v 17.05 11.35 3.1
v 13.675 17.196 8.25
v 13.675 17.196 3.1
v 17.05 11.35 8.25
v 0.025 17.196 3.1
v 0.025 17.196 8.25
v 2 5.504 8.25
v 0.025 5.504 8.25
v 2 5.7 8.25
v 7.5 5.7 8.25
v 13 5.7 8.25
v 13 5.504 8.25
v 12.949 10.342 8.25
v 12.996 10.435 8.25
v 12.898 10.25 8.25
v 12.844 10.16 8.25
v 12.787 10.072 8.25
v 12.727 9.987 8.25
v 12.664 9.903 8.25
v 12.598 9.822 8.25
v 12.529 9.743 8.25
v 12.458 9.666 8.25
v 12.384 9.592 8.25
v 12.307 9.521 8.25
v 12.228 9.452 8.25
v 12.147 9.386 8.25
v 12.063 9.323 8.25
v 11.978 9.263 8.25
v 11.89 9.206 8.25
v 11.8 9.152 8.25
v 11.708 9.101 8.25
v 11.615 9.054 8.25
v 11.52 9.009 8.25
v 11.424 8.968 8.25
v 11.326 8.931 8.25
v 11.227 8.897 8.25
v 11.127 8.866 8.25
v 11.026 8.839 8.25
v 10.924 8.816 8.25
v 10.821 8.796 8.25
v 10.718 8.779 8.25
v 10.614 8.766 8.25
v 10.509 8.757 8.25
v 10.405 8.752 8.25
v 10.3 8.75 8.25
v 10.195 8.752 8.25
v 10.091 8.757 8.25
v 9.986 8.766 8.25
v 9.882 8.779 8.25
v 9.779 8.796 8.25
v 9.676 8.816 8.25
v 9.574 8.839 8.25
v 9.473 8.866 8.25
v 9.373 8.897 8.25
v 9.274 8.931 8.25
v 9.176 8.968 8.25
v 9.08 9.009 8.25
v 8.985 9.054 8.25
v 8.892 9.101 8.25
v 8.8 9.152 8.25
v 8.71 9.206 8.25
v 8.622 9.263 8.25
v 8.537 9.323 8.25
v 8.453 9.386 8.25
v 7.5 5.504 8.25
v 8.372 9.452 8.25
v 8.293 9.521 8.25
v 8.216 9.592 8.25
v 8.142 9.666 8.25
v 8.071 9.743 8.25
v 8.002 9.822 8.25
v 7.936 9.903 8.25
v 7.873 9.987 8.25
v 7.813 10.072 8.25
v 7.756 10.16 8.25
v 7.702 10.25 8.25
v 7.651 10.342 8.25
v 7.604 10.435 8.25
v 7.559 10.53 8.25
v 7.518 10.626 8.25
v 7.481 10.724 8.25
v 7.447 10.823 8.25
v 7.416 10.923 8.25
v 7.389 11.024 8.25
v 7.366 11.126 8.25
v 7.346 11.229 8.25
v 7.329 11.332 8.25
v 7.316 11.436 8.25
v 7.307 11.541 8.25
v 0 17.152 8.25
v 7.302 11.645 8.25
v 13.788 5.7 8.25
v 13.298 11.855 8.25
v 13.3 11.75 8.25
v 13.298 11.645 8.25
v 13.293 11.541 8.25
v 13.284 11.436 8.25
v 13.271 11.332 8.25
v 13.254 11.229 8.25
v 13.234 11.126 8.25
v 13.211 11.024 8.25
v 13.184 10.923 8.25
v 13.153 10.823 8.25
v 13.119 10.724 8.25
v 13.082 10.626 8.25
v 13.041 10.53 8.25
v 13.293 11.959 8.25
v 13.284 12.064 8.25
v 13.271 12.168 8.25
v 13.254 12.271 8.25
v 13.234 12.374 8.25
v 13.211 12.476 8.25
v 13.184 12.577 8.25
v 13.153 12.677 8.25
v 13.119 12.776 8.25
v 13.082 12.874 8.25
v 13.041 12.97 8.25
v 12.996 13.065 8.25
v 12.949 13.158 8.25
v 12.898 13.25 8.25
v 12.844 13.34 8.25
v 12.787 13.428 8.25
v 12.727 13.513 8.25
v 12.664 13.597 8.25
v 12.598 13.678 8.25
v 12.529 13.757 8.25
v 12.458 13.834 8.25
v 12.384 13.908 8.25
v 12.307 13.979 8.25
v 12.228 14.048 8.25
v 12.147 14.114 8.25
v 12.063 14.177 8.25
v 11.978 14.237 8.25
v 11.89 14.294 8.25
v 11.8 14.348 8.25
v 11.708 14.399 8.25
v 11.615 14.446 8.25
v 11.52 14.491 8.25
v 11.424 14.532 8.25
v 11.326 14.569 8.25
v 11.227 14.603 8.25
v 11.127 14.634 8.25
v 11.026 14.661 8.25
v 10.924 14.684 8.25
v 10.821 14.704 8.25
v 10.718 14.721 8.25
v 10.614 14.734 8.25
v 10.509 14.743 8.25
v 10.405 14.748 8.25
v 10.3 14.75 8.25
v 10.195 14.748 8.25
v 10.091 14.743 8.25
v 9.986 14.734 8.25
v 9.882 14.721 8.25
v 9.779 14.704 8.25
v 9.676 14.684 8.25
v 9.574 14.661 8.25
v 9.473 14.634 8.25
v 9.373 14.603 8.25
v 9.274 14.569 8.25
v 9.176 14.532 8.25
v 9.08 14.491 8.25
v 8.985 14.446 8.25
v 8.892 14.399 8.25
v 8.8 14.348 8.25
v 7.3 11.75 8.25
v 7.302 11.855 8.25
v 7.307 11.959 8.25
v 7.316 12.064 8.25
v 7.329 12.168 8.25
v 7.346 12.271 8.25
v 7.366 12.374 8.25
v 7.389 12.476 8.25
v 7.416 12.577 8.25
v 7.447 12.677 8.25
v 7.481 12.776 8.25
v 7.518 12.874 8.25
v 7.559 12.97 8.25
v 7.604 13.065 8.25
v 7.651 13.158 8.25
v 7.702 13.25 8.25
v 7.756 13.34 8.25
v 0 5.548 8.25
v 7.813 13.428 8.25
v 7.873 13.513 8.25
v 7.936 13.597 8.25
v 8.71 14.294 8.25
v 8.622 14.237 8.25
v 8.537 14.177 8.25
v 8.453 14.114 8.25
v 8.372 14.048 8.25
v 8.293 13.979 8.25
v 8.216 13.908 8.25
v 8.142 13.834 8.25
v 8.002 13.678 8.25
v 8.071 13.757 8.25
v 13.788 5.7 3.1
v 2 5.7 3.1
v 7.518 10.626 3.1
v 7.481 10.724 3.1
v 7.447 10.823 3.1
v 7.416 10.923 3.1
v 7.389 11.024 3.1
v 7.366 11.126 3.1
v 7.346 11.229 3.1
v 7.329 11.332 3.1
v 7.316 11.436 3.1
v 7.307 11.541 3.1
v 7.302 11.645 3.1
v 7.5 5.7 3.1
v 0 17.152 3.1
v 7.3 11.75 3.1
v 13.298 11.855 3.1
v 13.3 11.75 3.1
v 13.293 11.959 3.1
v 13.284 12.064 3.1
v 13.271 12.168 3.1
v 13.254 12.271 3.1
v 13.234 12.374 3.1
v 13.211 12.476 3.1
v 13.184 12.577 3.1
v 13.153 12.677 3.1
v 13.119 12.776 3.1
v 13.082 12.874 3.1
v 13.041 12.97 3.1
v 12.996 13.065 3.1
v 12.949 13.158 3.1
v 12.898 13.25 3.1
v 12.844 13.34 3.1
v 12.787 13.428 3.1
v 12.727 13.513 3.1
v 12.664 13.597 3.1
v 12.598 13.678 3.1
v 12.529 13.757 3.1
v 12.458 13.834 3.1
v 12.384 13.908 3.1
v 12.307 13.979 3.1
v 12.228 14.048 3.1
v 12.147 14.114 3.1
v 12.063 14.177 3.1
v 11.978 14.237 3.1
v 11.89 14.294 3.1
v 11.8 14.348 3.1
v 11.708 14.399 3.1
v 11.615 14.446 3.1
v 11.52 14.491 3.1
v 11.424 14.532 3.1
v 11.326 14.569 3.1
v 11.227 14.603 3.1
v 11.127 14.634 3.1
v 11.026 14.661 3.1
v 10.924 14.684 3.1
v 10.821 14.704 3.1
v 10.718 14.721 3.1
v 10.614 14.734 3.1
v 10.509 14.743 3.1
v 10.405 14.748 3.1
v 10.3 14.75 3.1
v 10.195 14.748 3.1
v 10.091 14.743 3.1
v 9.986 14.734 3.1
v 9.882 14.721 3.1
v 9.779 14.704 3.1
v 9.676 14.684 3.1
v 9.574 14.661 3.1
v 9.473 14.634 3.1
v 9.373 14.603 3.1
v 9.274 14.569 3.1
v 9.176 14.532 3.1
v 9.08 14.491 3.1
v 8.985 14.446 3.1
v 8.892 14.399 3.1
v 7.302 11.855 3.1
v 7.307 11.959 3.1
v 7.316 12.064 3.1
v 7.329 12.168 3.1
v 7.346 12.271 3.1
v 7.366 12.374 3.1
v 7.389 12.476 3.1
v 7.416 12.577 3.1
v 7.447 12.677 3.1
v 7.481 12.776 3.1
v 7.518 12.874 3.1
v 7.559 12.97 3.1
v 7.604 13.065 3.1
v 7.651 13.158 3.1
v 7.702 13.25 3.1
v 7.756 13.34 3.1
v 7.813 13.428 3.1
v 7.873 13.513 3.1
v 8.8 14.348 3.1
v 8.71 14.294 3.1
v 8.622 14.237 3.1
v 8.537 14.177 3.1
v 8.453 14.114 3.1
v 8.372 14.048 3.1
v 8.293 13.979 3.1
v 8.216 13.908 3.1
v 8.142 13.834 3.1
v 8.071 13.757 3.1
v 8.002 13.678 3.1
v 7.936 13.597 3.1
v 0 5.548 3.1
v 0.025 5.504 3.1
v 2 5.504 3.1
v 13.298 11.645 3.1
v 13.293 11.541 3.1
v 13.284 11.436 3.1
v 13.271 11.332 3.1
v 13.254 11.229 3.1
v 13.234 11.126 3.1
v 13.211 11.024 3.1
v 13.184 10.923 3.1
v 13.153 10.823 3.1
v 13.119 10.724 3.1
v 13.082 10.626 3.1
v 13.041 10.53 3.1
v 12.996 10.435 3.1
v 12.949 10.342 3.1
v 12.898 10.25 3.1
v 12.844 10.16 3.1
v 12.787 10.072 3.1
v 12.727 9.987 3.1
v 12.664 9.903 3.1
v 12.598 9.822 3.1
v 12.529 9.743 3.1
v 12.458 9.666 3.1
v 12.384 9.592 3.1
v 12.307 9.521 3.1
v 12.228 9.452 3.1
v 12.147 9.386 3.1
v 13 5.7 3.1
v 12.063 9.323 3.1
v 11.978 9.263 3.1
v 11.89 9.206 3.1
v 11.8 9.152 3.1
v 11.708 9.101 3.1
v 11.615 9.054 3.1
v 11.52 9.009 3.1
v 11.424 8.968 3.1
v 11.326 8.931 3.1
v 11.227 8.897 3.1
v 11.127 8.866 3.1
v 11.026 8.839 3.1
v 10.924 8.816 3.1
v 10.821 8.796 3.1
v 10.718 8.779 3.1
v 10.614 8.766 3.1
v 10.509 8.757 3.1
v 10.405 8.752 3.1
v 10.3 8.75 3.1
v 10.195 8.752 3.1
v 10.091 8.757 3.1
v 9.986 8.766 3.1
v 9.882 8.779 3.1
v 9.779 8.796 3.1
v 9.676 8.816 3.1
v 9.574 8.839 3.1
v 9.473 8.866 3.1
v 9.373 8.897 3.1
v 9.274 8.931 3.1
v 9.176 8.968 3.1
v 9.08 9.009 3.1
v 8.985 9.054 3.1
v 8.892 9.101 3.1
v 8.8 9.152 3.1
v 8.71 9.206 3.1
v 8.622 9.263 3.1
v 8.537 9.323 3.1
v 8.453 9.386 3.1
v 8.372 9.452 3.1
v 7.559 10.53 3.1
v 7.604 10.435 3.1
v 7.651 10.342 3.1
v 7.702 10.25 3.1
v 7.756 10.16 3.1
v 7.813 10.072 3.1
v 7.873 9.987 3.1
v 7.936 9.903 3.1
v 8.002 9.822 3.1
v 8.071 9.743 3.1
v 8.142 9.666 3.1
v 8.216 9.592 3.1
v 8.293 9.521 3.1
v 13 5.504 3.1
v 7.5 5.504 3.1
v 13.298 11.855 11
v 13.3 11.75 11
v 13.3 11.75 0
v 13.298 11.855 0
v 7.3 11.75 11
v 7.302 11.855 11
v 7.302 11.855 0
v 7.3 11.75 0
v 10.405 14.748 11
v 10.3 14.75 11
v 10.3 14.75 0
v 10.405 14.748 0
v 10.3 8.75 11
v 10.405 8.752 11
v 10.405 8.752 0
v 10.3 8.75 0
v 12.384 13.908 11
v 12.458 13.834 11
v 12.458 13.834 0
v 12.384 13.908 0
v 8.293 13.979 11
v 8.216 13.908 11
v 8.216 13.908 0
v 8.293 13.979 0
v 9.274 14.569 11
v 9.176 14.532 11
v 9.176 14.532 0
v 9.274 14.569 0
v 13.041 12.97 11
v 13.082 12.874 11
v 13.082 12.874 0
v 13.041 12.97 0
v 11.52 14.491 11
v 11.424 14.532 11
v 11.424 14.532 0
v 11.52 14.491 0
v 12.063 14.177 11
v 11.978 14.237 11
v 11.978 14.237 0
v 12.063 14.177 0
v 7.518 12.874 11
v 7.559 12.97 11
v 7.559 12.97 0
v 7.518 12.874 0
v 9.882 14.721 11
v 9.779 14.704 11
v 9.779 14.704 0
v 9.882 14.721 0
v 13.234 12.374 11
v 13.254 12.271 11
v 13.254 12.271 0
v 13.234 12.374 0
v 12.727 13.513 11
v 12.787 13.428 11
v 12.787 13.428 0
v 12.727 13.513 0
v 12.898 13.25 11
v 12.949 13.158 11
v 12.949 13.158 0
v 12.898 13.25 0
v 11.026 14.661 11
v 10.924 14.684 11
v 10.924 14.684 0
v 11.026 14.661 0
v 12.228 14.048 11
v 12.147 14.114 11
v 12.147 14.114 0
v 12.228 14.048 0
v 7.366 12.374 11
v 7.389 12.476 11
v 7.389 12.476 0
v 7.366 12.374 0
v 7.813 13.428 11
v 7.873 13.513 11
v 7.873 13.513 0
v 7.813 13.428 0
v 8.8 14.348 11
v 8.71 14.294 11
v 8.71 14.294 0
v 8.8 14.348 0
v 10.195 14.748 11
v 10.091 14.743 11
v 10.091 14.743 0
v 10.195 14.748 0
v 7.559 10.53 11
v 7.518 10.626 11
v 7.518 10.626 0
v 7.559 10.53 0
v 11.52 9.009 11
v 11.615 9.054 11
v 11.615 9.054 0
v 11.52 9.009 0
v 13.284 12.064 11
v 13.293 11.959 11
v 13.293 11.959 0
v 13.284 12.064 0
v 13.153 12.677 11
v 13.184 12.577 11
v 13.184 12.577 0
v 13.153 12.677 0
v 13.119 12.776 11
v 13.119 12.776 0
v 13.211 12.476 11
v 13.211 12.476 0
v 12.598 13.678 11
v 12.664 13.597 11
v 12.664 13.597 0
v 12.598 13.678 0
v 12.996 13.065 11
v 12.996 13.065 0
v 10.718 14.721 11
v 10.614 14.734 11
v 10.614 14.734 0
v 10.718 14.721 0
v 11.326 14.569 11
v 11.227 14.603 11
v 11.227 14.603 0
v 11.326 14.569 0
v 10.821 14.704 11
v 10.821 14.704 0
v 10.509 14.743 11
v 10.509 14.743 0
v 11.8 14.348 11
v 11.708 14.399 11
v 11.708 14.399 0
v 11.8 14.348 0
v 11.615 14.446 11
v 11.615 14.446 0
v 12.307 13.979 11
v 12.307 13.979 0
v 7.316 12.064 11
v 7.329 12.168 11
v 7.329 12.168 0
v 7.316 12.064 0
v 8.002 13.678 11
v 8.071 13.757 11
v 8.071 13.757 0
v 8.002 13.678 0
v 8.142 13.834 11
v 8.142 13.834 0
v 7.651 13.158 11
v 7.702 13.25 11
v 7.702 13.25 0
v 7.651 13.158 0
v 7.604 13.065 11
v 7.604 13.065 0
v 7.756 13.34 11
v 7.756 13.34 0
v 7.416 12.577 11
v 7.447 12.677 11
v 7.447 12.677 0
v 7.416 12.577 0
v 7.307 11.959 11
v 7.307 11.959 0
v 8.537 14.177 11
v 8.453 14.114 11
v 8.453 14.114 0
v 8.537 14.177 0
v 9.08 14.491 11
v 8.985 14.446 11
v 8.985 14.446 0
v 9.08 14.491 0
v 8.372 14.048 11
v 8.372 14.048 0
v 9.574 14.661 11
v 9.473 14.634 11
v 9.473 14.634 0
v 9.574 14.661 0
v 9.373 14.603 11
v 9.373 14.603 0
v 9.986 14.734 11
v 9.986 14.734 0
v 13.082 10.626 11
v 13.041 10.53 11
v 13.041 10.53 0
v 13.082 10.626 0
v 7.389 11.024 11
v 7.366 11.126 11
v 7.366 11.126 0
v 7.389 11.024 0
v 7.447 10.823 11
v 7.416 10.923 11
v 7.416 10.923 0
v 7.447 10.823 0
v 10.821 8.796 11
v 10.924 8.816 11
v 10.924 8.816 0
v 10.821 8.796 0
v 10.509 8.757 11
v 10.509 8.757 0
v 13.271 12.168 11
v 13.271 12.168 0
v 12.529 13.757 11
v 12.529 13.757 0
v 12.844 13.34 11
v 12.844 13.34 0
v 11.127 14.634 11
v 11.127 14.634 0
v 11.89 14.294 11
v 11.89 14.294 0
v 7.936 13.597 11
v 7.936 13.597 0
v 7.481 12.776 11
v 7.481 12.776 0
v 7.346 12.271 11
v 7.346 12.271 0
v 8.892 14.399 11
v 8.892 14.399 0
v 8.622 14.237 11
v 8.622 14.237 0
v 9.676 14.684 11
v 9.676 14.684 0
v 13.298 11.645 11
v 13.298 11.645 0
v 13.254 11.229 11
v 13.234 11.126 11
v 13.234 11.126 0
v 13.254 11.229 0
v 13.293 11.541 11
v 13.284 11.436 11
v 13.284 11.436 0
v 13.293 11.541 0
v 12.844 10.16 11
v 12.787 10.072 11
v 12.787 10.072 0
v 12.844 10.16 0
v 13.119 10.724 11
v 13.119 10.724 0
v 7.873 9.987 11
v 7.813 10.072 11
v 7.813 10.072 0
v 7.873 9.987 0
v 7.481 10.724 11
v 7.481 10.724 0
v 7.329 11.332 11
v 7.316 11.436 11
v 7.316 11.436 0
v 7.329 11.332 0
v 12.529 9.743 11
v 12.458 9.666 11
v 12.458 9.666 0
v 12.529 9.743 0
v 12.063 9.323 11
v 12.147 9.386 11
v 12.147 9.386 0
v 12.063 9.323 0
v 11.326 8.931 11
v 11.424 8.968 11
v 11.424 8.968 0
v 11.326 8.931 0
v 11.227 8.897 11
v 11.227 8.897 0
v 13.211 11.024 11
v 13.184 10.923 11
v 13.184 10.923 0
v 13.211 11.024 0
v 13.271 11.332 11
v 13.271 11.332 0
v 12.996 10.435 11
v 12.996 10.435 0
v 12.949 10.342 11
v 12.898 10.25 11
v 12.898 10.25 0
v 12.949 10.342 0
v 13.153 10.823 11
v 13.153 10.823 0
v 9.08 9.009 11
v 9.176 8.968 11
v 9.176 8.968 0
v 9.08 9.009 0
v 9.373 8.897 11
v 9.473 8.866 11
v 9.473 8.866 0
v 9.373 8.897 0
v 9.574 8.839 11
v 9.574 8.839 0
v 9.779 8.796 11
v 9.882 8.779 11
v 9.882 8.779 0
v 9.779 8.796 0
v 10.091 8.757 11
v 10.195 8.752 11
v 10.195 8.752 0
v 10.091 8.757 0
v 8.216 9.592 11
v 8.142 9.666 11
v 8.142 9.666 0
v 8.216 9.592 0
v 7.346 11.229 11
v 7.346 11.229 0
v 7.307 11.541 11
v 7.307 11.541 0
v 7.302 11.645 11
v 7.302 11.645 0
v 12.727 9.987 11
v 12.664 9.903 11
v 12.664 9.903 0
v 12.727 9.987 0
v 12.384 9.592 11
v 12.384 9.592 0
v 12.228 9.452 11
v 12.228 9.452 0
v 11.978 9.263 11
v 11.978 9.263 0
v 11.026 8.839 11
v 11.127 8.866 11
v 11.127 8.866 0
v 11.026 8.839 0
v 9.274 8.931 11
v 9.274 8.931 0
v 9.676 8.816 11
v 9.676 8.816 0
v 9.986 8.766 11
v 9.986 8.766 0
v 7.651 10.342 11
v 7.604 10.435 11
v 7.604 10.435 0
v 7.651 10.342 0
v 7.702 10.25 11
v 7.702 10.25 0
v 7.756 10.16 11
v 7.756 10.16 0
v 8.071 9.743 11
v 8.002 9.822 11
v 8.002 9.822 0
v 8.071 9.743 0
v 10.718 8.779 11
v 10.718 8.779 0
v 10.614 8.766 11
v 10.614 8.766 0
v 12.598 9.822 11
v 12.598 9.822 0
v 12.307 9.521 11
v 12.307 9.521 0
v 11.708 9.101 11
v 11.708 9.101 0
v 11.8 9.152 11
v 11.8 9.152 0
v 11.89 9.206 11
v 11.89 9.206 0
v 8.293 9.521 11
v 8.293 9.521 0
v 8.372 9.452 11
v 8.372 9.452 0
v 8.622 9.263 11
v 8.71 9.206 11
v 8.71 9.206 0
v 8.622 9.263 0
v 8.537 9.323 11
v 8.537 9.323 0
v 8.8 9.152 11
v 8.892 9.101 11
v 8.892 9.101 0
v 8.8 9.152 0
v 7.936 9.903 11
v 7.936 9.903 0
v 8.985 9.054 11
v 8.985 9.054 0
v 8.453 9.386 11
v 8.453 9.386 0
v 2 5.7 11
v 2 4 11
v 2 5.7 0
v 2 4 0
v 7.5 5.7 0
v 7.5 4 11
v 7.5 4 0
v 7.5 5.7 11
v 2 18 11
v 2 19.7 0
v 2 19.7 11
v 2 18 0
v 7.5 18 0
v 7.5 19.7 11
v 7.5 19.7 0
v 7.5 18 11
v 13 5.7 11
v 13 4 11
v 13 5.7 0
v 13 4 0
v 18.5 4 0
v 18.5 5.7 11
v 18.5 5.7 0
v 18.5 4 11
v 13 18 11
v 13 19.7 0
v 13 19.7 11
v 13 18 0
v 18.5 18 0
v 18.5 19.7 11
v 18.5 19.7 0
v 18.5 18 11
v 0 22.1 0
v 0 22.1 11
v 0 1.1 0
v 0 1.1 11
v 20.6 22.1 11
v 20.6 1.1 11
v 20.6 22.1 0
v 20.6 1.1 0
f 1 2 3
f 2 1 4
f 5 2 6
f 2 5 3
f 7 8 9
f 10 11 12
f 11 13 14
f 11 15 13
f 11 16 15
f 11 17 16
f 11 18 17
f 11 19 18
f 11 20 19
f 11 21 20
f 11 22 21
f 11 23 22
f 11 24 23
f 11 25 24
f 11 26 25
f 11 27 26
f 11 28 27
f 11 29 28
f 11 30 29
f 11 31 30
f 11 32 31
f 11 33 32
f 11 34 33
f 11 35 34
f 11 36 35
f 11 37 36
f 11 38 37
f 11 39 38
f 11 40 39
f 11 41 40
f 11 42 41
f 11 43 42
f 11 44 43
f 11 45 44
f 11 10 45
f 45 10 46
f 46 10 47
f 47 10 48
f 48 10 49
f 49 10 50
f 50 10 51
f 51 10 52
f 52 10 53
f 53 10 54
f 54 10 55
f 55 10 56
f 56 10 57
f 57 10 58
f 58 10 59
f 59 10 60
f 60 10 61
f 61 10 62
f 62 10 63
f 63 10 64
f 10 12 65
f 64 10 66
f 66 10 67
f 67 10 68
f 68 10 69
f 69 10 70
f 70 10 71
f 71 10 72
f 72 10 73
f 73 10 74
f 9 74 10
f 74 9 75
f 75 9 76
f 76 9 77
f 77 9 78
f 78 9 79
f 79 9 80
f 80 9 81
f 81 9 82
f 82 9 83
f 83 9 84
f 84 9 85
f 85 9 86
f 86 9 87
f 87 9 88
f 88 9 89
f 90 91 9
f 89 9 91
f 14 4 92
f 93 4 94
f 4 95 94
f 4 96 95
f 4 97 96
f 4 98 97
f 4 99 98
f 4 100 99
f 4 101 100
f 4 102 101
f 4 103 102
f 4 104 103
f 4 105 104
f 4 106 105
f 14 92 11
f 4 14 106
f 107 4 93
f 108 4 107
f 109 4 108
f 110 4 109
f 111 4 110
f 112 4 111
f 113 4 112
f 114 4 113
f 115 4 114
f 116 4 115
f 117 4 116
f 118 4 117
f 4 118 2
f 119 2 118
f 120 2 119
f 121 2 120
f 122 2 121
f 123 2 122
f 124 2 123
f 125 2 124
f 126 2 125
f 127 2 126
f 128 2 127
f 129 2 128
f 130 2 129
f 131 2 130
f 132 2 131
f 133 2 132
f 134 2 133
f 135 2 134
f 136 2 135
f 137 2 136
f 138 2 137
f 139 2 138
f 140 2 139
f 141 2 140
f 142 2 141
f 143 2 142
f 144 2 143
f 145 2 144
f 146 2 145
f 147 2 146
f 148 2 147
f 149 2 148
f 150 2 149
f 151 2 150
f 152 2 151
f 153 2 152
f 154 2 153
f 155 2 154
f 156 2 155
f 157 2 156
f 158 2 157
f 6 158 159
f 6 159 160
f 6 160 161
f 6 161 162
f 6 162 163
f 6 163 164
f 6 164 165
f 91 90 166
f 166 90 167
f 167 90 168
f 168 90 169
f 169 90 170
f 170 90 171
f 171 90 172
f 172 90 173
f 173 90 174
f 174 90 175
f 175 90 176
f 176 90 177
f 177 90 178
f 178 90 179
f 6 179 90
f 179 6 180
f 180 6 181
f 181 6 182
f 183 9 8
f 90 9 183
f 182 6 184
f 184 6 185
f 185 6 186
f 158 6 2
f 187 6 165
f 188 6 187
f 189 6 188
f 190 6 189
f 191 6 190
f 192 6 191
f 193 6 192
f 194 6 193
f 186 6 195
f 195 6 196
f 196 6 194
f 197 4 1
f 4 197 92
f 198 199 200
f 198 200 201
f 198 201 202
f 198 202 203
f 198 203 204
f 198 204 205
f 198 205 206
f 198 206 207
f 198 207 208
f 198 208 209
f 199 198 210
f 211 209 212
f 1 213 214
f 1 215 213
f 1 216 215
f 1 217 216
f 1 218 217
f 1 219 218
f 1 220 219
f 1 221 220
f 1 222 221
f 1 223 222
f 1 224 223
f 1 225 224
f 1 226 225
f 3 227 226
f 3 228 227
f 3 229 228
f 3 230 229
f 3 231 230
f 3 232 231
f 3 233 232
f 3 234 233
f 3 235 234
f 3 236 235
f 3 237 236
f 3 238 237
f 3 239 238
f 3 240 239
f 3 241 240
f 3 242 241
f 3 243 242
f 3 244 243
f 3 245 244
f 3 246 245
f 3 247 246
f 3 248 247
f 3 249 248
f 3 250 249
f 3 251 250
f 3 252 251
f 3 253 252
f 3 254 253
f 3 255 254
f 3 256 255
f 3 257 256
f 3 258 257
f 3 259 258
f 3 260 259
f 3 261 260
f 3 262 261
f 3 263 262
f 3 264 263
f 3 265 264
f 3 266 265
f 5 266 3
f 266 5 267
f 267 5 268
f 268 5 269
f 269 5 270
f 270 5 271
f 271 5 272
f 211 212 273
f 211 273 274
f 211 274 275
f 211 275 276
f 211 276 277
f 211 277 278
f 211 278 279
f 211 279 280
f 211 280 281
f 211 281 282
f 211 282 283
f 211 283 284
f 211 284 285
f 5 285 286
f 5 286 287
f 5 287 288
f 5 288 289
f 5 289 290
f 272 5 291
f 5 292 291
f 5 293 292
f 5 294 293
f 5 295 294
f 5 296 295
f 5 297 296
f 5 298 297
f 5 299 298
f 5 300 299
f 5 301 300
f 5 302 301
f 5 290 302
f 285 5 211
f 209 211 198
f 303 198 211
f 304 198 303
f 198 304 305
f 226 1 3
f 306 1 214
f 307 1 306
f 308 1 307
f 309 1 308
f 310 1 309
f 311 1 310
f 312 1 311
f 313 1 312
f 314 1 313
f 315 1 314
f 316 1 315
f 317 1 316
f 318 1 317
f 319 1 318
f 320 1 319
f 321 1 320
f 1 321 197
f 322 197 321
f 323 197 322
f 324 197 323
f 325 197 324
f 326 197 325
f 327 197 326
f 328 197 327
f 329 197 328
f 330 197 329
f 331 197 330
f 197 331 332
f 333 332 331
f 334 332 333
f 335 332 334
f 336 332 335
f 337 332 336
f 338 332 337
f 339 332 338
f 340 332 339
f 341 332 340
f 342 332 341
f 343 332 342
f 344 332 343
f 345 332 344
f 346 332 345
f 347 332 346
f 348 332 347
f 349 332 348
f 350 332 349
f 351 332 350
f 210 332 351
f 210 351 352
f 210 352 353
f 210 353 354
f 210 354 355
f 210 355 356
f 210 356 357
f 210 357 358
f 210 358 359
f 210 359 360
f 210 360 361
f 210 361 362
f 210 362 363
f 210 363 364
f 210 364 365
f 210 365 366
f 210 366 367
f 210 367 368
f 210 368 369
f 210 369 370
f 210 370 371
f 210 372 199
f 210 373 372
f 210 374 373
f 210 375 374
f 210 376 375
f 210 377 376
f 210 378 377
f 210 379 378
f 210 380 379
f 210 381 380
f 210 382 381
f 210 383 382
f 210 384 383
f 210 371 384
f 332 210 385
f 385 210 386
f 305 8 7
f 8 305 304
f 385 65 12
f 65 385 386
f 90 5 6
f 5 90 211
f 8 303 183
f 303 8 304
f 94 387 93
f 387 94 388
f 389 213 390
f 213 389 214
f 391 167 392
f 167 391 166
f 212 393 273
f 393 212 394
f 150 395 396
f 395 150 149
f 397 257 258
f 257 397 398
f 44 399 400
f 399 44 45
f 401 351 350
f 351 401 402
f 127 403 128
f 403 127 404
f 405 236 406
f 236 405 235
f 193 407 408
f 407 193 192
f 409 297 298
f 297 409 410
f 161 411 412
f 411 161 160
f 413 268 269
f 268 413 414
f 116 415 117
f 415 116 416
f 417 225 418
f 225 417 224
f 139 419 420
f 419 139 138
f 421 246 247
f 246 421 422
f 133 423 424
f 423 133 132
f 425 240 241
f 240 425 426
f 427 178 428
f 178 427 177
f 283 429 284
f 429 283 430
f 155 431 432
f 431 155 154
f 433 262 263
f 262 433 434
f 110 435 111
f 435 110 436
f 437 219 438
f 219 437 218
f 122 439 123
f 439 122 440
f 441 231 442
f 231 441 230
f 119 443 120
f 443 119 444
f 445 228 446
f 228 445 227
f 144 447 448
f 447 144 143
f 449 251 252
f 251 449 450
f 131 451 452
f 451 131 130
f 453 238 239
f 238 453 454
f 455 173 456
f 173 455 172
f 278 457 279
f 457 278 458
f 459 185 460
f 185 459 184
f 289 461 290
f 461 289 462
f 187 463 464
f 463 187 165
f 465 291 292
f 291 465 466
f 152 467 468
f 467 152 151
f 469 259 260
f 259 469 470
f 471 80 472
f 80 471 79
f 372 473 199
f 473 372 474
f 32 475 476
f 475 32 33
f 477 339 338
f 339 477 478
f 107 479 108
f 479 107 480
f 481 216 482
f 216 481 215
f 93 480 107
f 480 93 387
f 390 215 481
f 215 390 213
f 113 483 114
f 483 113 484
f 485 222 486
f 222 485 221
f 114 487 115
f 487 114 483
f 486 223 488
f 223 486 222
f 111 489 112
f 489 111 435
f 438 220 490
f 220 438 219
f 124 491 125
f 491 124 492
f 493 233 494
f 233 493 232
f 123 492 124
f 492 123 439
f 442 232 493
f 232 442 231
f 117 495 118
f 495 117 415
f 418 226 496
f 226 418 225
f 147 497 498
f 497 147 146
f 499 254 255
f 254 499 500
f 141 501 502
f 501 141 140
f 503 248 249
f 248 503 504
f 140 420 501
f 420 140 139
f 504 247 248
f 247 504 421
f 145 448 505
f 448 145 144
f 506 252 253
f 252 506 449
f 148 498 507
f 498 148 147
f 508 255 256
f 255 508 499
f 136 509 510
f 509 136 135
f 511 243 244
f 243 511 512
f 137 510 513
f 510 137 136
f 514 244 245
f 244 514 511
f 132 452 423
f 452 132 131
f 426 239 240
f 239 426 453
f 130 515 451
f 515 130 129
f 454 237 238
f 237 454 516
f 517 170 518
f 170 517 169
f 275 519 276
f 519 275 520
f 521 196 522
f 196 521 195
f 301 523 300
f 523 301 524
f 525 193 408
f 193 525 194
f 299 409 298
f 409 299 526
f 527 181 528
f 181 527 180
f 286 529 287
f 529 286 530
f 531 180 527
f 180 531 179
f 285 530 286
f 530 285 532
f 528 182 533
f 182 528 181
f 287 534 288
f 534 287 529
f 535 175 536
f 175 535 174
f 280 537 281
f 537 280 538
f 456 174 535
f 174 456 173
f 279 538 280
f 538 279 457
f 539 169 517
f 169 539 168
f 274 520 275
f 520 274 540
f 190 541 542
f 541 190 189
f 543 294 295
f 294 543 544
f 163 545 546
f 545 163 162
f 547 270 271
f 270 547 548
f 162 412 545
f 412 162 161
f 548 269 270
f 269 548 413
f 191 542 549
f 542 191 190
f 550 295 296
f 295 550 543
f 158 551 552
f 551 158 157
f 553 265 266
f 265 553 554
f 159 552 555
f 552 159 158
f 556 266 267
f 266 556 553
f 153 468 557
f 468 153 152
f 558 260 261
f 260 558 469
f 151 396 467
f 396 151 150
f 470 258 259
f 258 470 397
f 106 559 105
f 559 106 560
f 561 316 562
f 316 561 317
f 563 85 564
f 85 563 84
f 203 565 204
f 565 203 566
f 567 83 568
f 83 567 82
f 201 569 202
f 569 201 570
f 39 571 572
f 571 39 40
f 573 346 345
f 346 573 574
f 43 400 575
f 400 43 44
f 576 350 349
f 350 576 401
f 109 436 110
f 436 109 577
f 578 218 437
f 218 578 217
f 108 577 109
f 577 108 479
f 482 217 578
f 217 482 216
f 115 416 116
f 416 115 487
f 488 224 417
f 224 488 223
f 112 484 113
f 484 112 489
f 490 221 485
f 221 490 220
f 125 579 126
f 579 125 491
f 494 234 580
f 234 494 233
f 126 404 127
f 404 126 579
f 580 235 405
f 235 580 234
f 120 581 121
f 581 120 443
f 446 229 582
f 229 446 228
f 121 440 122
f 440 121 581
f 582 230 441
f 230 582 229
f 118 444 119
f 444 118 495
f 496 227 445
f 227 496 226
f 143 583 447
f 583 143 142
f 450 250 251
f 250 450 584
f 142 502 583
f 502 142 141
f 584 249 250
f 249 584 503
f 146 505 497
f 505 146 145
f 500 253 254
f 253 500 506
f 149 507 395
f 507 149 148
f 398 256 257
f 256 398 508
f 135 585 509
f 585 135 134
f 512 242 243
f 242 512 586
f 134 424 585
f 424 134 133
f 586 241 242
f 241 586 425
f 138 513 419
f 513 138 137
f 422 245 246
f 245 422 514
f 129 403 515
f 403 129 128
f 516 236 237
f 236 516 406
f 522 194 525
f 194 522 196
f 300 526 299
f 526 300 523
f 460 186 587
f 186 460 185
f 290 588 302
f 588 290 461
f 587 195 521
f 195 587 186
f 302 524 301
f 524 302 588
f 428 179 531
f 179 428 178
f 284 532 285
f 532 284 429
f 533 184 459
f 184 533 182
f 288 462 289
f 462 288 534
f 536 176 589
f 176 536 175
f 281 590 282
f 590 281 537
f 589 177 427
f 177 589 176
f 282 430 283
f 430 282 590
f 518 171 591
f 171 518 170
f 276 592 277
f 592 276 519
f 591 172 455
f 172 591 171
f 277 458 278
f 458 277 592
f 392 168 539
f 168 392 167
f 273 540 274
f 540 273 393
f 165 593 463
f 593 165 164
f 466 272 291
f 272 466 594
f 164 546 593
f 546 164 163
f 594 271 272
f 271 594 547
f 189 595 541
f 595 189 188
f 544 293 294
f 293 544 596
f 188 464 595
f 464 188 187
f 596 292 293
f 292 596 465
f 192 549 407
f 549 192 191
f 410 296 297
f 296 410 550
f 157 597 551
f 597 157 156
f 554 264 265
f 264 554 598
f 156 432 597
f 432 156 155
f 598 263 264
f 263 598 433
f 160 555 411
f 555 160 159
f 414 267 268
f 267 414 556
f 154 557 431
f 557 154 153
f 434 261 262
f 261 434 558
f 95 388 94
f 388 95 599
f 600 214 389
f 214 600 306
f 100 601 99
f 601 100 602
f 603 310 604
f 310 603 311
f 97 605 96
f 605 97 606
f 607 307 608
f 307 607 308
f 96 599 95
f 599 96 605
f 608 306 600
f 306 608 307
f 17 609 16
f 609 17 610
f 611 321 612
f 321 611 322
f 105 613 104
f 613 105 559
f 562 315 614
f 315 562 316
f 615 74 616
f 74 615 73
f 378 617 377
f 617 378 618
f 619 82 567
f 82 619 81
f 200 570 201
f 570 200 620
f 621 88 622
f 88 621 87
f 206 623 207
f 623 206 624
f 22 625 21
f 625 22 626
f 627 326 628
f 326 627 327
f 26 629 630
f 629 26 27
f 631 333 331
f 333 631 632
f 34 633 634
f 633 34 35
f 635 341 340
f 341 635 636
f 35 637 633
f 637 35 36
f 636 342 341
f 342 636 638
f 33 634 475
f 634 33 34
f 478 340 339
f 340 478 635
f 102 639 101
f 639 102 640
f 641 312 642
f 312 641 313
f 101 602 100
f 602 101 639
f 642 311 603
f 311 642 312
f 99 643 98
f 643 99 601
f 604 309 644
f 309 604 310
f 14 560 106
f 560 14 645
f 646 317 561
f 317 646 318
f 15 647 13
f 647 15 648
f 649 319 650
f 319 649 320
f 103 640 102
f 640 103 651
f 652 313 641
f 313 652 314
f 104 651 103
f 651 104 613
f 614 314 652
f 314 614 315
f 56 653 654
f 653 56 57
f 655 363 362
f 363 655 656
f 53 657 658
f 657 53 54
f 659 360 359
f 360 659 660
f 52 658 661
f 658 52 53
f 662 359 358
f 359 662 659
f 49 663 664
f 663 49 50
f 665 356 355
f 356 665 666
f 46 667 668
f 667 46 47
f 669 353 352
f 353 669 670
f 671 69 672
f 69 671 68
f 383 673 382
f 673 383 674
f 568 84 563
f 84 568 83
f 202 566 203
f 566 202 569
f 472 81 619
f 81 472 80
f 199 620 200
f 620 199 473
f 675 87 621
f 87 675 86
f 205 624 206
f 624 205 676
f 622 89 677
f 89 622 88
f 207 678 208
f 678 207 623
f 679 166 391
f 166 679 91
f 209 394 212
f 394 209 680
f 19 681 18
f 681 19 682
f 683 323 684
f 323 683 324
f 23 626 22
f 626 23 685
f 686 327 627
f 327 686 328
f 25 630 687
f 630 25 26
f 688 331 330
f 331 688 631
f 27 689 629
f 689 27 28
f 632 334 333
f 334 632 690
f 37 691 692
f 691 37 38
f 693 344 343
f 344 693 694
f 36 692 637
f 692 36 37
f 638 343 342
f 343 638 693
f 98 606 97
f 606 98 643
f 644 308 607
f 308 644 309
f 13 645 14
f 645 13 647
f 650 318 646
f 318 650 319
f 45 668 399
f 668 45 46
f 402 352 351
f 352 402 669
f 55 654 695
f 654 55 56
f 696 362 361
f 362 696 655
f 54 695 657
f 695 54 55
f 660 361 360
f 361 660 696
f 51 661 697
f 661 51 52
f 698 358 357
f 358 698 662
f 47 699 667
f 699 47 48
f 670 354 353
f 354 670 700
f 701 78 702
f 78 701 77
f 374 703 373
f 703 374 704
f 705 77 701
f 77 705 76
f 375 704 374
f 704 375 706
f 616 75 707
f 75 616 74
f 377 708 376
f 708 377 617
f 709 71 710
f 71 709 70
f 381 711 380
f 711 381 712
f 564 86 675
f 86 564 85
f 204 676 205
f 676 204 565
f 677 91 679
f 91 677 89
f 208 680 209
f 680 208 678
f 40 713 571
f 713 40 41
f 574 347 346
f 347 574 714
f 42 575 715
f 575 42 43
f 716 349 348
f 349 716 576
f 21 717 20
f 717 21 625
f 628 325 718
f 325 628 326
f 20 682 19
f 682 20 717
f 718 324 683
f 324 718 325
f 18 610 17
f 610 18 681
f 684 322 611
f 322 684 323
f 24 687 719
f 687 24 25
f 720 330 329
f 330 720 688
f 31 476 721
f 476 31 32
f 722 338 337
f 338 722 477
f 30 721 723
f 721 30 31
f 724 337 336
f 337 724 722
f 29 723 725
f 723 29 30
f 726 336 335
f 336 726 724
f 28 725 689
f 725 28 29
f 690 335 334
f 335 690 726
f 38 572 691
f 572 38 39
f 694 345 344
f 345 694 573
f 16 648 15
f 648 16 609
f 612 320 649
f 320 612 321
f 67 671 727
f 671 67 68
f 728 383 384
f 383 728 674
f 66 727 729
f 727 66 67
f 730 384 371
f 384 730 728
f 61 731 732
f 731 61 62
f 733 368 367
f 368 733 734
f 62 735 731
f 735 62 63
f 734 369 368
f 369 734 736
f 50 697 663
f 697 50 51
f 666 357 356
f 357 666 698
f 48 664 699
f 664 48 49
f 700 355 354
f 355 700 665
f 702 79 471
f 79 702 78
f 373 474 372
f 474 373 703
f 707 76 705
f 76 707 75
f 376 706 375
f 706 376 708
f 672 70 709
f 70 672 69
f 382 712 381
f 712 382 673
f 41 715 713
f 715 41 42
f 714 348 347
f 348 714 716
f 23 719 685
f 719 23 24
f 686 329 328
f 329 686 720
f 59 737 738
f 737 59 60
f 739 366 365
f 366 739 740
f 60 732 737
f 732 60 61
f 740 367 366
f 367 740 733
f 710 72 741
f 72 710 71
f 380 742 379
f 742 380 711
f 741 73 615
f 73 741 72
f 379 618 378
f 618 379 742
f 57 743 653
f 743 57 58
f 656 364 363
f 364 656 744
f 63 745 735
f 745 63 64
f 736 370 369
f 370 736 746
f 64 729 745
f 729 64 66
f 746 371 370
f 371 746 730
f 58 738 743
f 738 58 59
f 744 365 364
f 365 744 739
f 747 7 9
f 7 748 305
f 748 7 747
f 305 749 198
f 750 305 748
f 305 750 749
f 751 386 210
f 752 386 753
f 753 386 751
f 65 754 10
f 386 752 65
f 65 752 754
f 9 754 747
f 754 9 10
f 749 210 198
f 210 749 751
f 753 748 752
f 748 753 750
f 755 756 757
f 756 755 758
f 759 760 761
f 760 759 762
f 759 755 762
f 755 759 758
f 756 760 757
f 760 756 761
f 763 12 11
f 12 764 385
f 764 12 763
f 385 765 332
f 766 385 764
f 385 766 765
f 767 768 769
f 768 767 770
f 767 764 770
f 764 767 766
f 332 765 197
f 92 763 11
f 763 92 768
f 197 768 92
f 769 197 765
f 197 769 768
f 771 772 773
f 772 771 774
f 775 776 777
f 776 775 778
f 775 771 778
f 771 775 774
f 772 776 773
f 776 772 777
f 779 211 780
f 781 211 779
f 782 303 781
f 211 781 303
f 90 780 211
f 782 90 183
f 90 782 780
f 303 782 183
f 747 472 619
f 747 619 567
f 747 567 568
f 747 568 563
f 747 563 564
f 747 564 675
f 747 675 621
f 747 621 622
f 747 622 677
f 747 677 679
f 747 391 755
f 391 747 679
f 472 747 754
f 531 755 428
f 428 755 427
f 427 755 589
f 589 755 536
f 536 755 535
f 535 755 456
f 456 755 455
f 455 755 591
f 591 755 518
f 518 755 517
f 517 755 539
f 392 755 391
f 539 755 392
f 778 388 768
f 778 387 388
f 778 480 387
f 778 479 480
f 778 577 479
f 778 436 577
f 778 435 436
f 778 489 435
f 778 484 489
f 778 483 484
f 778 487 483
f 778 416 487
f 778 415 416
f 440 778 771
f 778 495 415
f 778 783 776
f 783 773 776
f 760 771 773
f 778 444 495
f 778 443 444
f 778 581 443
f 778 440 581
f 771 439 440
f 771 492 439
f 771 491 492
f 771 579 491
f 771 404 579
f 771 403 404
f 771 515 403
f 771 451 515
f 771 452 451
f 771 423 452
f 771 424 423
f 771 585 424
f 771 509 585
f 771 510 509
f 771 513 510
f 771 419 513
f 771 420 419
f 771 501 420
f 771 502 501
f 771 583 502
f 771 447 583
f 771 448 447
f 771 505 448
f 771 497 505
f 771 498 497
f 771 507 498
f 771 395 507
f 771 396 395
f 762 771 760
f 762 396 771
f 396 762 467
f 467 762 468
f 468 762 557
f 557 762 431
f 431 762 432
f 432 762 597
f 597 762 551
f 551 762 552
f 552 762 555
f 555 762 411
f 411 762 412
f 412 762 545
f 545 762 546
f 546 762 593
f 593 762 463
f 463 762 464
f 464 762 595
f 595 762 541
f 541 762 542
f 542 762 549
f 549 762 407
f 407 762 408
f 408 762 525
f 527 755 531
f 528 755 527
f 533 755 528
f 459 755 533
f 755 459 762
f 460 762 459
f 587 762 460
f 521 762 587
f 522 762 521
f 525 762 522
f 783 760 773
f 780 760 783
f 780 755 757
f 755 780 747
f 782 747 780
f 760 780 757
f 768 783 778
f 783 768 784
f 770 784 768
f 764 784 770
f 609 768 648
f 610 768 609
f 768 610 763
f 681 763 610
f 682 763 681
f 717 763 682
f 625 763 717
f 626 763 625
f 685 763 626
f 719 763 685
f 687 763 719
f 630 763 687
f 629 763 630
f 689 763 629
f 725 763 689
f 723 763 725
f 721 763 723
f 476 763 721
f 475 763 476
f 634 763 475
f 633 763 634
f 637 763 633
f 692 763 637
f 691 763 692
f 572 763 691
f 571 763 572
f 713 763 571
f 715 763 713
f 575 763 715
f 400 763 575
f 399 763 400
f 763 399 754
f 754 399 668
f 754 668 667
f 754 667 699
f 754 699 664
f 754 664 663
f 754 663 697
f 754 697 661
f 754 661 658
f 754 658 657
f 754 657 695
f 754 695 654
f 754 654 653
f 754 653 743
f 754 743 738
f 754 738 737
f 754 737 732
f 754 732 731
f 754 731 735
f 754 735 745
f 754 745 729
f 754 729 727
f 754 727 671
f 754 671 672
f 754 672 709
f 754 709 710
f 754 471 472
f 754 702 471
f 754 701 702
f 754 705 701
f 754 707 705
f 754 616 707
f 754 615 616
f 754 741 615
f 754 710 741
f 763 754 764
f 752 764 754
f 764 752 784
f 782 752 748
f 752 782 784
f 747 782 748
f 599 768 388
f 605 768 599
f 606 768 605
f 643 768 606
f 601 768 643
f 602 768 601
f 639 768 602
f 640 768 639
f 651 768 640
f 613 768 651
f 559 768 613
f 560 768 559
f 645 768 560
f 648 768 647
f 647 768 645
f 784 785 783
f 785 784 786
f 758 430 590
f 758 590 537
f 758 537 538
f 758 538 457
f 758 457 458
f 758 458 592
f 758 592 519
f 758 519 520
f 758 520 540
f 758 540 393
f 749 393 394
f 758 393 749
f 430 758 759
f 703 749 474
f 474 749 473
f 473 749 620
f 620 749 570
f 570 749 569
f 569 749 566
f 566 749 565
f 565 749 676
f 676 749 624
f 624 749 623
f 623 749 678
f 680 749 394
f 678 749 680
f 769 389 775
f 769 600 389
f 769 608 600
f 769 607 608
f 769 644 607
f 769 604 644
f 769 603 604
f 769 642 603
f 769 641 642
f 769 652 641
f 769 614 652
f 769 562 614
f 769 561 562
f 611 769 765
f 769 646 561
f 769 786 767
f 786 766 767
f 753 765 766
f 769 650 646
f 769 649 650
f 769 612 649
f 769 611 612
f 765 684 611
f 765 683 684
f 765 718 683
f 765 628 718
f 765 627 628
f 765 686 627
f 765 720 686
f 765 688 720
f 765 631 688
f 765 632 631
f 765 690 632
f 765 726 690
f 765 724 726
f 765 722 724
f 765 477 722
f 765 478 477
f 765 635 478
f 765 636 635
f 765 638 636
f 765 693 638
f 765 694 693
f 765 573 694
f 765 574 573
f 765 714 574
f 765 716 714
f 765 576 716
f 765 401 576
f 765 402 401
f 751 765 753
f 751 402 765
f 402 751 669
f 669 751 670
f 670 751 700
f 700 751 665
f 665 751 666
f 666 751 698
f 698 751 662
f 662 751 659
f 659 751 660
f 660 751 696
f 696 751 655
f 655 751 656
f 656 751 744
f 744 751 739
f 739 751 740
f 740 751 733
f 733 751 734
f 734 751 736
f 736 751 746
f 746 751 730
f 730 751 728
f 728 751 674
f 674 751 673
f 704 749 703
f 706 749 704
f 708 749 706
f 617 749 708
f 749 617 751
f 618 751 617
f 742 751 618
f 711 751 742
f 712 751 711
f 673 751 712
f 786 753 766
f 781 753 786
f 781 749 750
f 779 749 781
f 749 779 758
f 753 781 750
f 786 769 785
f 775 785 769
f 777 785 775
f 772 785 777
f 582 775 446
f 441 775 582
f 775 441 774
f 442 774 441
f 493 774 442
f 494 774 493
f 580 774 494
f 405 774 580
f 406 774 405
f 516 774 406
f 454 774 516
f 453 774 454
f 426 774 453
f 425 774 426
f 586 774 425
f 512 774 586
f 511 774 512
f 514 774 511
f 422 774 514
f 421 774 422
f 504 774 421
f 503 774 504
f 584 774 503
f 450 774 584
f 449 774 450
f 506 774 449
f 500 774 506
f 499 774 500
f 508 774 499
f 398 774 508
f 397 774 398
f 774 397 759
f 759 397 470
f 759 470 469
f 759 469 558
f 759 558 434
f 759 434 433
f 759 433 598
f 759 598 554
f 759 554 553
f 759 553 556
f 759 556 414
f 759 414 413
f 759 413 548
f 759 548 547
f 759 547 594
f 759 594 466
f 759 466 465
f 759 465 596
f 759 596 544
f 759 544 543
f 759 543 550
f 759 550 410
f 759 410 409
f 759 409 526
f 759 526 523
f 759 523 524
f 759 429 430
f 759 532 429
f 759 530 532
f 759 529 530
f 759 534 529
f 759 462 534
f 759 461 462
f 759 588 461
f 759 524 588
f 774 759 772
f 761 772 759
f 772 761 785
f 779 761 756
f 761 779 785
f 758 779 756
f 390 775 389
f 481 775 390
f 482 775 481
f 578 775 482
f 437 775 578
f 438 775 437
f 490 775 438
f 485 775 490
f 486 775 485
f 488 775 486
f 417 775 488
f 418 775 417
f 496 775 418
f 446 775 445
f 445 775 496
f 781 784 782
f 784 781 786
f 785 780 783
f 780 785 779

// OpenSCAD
difference()
{
    translate([0.0,1.1,0]) cube([20.6, 21, 11]);
    union()
    {
        translate([10.3, 11.35, 3.1])cylinder(r=6.75, h=5.15, $fn=6);
        translate([8.0, 11.35,  3.1]) cylinder(r=6.75, h=5.15, $fn=6);
        translate([5.7, 11.35,  3.1]) cylinder(r=6.75, h=5.15, $fn=6);
        translate([3.4, 11.35,  3.1]) cylinder(r=6.75, h=5.15, $fn=6);

        translate([10.3, 11.75, -0.1])cylinder(r=3, h=20, $fn=180);
        translate([2,4,-1]) cube([5.5,1.7,80]);
        translate([2,18,-1]) cube([5.5,1.7,80]);
        translate([13,4,-1]) cube([5.5,1.7,80]);
        translate([13,18,-1]) cube([5.5,1.7,80]);
    }
}
